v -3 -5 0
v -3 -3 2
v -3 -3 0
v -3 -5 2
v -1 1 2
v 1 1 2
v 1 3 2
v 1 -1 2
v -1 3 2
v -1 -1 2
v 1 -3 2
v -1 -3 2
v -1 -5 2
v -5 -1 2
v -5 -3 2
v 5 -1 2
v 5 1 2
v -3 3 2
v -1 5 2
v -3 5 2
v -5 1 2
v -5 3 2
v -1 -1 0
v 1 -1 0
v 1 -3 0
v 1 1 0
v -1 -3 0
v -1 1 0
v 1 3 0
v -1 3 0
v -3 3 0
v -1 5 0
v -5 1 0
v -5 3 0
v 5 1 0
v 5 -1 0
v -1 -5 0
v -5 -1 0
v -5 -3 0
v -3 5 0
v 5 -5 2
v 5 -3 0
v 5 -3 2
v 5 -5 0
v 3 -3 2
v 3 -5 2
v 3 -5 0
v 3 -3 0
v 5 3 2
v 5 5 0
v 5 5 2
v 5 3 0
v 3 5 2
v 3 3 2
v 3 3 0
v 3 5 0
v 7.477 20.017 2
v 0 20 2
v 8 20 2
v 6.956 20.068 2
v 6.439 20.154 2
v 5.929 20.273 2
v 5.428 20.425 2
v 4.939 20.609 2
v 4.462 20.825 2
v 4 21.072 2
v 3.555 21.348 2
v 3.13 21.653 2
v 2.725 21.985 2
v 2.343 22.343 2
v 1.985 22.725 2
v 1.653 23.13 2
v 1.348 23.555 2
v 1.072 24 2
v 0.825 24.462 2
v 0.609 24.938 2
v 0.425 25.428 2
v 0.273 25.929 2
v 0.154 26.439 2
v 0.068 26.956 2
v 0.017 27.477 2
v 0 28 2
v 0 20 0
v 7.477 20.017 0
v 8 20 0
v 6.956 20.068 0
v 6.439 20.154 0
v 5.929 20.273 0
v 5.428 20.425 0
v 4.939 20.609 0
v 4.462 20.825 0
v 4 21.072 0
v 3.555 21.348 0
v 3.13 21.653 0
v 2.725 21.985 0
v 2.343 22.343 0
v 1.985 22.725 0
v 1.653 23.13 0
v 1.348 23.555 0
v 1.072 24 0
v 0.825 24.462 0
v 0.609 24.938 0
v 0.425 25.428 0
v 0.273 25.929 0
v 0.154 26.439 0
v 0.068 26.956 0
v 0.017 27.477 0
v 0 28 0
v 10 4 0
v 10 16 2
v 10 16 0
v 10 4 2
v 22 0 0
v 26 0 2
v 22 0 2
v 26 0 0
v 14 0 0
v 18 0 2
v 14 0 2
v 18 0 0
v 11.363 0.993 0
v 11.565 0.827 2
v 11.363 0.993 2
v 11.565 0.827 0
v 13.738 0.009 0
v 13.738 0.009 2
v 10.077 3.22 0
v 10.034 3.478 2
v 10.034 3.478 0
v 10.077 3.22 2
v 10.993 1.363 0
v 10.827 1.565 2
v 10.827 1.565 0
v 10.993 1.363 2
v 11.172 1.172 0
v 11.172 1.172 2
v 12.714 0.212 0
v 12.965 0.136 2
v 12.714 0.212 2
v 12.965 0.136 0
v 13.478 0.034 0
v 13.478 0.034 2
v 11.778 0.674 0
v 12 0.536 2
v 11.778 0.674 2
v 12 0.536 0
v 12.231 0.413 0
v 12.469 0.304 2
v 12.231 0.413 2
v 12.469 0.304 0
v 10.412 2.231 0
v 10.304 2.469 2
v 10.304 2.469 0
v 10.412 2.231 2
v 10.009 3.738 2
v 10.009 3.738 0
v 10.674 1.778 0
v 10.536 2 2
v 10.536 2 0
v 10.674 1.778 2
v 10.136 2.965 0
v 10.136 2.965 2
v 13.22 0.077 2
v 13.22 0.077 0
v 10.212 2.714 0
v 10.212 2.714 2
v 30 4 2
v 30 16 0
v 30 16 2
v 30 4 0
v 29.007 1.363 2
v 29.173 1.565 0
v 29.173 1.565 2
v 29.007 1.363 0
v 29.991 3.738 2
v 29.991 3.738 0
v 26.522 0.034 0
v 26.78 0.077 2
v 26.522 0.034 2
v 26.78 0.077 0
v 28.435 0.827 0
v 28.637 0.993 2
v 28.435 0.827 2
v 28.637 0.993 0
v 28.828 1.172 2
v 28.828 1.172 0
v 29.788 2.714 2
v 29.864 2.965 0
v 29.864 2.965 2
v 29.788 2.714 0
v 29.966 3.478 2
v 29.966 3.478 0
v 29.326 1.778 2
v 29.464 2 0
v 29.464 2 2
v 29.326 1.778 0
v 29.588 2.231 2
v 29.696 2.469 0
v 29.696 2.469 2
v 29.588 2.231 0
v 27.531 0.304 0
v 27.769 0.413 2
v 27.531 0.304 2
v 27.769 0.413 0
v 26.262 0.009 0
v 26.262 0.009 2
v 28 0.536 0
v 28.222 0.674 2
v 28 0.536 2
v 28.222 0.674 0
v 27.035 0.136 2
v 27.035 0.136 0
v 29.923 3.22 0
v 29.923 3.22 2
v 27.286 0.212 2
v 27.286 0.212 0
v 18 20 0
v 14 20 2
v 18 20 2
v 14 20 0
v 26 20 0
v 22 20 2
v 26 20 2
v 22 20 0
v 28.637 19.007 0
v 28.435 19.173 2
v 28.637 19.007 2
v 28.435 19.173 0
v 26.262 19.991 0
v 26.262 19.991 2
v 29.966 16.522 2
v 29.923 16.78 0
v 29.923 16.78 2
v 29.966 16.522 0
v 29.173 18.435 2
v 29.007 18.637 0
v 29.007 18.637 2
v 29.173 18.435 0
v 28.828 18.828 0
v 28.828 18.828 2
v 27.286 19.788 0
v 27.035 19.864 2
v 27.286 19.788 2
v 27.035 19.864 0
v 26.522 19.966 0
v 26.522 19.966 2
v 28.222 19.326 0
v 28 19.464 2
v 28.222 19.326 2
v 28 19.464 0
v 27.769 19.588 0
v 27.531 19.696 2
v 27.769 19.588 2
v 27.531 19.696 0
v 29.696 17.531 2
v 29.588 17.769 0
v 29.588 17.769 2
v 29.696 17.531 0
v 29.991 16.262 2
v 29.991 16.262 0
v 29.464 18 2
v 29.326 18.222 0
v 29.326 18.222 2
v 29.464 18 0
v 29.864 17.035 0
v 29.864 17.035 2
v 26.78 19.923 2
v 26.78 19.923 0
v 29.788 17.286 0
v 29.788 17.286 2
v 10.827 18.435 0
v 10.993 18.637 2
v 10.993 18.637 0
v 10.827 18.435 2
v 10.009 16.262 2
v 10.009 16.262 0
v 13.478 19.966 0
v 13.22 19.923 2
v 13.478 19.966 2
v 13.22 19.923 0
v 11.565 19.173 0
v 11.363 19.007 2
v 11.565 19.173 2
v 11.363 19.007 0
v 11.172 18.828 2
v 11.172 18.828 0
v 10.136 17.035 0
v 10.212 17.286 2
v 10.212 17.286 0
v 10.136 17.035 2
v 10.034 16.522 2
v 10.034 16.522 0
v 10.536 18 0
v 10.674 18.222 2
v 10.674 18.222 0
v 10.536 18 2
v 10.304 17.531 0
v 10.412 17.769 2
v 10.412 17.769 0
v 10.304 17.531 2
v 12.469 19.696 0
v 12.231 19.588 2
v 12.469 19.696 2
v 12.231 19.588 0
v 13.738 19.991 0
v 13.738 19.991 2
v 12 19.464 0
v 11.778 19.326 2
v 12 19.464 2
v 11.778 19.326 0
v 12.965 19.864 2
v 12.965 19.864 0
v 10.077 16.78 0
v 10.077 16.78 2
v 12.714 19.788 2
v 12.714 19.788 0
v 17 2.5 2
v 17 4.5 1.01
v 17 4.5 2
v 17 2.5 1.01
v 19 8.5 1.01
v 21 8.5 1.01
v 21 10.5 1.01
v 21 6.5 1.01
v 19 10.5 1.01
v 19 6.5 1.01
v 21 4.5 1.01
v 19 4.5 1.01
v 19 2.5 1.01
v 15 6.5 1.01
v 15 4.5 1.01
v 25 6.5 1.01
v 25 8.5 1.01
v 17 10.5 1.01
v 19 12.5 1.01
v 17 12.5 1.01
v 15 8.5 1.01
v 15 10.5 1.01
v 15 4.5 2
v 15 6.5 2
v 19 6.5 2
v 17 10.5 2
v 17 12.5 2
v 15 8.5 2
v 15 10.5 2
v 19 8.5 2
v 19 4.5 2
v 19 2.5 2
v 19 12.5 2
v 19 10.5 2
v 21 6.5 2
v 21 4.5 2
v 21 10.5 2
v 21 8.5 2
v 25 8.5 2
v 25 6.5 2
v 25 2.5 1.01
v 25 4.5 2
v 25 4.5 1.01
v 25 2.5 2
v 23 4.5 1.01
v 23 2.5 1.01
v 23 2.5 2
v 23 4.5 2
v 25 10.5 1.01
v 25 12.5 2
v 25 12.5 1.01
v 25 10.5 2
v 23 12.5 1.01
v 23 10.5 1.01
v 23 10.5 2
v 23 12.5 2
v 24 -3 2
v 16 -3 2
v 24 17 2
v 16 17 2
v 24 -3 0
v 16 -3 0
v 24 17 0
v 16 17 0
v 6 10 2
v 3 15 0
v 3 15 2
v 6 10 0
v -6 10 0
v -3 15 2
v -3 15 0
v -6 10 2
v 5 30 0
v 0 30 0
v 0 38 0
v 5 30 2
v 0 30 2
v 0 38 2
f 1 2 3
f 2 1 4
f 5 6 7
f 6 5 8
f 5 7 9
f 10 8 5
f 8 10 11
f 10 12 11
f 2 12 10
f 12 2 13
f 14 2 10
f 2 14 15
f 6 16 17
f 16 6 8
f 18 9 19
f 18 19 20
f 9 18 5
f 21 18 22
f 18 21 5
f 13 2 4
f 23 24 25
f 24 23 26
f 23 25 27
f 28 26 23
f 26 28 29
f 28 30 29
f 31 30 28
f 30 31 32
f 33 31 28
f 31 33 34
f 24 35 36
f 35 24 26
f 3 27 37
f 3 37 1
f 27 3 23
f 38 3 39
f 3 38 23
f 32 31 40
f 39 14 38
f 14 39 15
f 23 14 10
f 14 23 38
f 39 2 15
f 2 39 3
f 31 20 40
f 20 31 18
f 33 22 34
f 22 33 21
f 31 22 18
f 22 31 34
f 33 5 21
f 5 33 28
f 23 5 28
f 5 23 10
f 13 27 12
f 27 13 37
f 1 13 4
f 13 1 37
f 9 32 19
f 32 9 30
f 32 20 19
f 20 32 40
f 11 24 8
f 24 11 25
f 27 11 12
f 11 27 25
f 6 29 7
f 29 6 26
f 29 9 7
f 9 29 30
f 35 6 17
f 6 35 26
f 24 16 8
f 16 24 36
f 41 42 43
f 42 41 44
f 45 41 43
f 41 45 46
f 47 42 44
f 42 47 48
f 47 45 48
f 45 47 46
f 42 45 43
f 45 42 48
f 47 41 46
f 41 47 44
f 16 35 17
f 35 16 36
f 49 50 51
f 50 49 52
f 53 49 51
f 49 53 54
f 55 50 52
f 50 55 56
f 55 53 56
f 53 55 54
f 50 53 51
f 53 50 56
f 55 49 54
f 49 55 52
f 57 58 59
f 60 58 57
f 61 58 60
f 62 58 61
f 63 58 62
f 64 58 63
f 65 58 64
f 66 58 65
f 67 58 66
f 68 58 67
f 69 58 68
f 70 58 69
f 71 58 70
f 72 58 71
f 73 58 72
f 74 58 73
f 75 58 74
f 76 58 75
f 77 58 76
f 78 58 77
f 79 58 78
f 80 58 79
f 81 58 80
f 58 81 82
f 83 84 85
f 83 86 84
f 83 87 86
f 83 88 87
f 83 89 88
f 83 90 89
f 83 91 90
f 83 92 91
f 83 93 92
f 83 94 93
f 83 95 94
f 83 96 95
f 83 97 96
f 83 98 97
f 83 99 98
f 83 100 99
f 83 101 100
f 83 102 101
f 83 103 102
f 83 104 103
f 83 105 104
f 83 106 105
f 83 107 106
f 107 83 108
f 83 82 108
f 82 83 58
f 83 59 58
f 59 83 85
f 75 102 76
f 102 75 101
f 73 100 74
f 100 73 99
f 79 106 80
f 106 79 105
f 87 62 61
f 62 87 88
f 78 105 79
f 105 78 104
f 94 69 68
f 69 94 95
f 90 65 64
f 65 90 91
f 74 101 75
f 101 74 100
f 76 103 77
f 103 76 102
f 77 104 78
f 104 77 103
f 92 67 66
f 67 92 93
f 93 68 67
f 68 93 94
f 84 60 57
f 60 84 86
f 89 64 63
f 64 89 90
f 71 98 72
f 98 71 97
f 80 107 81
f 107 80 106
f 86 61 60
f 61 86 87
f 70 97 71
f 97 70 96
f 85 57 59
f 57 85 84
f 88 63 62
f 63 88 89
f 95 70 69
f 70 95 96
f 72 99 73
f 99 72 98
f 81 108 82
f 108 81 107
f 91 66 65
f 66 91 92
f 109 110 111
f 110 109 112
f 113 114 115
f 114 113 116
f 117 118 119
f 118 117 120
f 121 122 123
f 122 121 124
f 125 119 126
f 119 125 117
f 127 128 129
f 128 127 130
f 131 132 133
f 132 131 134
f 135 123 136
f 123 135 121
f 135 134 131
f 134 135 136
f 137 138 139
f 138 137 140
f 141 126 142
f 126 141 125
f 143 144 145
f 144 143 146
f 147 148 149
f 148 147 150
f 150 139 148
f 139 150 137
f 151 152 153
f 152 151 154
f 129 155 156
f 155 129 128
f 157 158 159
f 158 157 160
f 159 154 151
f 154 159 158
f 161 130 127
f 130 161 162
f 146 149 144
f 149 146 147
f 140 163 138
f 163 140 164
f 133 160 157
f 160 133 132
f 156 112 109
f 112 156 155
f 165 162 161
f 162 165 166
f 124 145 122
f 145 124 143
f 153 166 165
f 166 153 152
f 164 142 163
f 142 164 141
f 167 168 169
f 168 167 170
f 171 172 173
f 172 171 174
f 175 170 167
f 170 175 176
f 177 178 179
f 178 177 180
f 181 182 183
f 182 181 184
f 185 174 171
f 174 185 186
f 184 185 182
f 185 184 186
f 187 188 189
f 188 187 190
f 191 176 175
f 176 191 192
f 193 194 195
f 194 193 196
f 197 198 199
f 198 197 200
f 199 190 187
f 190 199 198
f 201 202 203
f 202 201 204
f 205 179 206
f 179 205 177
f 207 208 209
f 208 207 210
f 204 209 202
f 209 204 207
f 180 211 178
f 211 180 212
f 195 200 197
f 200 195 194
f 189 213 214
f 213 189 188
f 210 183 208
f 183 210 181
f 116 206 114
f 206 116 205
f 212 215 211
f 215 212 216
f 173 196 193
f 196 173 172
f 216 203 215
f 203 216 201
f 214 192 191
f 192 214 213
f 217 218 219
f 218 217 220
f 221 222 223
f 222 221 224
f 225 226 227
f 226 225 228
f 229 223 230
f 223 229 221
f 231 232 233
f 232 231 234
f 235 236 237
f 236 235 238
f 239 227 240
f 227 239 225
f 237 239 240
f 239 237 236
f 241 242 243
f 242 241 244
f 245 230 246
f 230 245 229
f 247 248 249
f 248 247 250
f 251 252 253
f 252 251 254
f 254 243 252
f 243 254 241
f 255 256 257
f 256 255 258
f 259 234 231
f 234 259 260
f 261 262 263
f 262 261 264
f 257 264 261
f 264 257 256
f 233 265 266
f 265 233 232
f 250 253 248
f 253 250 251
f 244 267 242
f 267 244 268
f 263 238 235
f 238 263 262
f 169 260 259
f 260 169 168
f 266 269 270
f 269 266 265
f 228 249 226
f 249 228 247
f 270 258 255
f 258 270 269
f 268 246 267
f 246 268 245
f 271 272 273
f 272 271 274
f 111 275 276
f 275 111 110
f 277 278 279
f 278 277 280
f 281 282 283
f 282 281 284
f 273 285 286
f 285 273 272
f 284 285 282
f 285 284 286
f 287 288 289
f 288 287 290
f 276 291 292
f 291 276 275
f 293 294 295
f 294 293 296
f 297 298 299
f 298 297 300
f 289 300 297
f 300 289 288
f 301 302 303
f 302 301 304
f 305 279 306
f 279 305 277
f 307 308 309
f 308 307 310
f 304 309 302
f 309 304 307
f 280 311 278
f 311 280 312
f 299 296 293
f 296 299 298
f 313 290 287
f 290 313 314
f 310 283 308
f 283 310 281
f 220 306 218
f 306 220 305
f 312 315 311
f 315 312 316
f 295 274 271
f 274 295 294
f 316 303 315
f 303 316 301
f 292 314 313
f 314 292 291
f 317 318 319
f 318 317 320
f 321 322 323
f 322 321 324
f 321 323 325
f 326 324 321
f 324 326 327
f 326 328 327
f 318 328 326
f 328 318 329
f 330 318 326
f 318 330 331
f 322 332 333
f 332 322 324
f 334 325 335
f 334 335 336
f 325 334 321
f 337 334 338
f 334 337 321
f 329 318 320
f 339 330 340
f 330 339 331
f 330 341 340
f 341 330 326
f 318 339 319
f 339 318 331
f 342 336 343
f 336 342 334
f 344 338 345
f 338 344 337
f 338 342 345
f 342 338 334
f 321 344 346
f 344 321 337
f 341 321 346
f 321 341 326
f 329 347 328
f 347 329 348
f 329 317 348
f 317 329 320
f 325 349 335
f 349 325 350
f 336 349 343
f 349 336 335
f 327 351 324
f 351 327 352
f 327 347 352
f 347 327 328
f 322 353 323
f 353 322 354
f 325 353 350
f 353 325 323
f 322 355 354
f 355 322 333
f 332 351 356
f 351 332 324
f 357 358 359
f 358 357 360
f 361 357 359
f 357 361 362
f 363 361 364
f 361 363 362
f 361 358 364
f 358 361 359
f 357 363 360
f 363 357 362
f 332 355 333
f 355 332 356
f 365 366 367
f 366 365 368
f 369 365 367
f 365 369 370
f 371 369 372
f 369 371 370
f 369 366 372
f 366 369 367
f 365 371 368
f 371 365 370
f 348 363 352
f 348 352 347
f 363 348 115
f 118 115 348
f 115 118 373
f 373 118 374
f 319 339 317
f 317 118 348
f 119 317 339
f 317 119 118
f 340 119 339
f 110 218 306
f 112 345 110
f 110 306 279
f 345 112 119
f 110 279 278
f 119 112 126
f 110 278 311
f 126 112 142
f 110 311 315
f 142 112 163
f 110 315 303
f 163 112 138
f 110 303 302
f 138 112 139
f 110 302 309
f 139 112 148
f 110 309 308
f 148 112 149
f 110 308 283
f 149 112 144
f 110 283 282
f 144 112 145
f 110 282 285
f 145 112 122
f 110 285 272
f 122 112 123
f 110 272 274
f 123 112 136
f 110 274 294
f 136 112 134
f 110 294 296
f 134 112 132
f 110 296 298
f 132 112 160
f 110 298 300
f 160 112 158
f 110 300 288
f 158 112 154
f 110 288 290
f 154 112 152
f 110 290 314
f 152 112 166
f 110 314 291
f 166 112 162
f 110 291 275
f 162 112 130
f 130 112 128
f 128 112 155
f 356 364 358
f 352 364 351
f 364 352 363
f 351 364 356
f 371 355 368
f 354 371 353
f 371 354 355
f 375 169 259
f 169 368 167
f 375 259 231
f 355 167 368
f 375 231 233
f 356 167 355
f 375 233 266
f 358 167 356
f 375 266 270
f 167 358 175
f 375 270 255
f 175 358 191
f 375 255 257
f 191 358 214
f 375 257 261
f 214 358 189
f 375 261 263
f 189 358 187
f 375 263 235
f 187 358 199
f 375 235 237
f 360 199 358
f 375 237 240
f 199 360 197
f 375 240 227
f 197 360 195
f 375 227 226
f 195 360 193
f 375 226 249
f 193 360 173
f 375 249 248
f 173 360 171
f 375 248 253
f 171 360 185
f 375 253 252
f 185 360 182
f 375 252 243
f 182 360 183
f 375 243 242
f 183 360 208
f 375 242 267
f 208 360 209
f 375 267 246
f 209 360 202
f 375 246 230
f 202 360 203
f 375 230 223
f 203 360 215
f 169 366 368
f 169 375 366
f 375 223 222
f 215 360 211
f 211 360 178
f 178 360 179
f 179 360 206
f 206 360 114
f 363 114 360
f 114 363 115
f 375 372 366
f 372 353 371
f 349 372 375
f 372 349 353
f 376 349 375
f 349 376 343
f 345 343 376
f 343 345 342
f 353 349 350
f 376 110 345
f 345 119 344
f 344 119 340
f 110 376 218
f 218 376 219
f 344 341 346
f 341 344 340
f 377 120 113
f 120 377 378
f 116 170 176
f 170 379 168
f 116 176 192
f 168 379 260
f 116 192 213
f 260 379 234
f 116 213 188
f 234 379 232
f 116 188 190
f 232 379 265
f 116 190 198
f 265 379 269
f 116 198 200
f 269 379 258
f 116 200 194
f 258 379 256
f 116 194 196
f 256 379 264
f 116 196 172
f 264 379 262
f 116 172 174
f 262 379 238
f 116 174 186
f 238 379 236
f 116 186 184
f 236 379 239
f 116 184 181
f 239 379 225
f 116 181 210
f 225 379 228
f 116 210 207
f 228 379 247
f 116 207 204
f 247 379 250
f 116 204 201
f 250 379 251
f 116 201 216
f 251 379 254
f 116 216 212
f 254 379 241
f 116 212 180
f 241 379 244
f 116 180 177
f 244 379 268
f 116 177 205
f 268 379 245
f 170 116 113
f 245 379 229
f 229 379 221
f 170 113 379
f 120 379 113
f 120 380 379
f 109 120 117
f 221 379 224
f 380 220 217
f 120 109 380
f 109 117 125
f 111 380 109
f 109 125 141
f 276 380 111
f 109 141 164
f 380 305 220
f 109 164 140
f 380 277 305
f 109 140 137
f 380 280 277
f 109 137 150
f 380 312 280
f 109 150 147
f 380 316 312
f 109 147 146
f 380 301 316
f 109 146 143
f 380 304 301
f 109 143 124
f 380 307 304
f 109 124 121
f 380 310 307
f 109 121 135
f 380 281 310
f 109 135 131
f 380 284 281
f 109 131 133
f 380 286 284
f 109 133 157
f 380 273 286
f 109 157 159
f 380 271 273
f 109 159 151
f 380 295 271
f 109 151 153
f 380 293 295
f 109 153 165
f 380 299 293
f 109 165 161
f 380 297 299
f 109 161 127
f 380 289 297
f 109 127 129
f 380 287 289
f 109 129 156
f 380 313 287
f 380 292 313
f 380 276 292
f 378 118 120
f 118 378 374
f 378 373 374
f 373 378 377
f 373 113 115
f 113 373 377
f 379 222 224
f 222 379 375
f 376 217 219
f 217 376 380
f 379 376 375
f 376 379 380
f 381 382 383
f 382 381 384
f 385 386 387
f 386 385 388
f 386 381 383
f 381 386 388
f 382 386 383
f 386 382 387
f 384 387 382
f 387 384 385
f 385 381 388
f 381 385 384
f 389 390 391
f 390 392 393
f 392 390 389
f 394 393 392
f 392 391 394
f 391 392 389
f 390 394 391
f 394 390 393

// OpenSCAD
// by MegaSaturnv

/////////////////////////////
// Customizable Parameters //
/////////////////////////////
/* [Basic] */

/* [Advanced] */
//Use $fn = 24 if it's a preview. $fn = 96 for the render. Increase 96 to produce a smoother curve.
$fn = $preview ? 24 : 96;

/////////////
// Modules //
/////////////
module drawAvatar(pxSize=2, thickness=2, center=true) {
    avatar = [
    " X X ",
    "XX XX",
    " XXX ",
    "  X  ",
    "X X X"];
    for (i = [0 : len(avatar)-1], j = [0 : len(avatar[i])-1]) {
        if (avatar[i][j] == "X") {
			if (center)	{
				translate([-(len(avatar)*pxSize)/2, -(len(avatar[0])*pxSize)/2, 0])
				translate([i*pxSize, j*pxSize, 0])
				cube([pxSize, pxSize, thickness]);
			} else {
				translate([i*pxSize, j*pxSize, 0])
				cube([pxSize, pxSize, thickness]);
			}
        }
    }
}

module dovetailJoint(a=6, b=12, h=5, thickness=2, center=true) {
	if (center)	{
		translate([-b/2, 0, 0])
		linear_extrude (height=thickness)
		polygon(points=[[0,0],[b,0],[a/2+b/2,h],[b/2-a/2,h]]);
	} else {
		linear_extrude (height=thickness)
		polygon(points=[[0,0],[b,0],[a/2+b/2,h],[b/2-a/2,h]]);
	}
}

module roundedCorner(sideLength=8, thickness=2, cylinderCenter=false) {
	if (cylinderCenter) { //Cylinder cutout is in the centre
		difference() {
			cube([sideLength, sideLength, thickness]);
			cylinder(r=sideLength, h=thickness);
		}
	} else {
		difference() { //Corner of the object is in the centre
			cube([sideLength, sideLength, thickness]);
			translate([sideLength, sideLength, -0.01]) cylinder(r=sideLength, h=thickness+0.02);
		}
	}
}

module triangle(XLength=5, YLength=8, thickness=2) {
    linear_extrude(height=thickness)
    {
        polygon(points=[[0,0],[XLength,0],[0,YLength]], paths=[[0,1,2]]);
    }
}

////////////////
// Main Model //
////////////////
translate([0, 0, 0])  drawAvatar();
translate([0, 10, 0]) dovetailJoint();
translate([0, 20, 0]) roundedCorner();
translate([0, 30, 0]) triangle();

translate([10, 0, 0]) difference() {
	union() {
		cube([20,20,2]);
		translate([10, -3, 0]) dovetailJoint(4, 8, 3, 2, true);
	}

	translate([10, 17, -0.01]) dovetailJoint(4, 8, 3, 2.02, true);

	translate([0,  0,  -0.01]) rotate([0, 0, 0])   roundedCorner(4, 2.02, false);
	translate([20, 0,  -0.01]) rotate([0, 0, 90])  roundedCorner(4, 2.02, false);
	translate([20, 20, -0.01]) rotate([0, 0, 180]) roundedCorner(4, 2.02, false);
	translate([0,  20, -0.01]) rotate([0, 0, 270]) roundedCorner(4, 2.02, false);

	translate([10, 7.5, 1.01]) drawAvatar(2, 1, true);
}
